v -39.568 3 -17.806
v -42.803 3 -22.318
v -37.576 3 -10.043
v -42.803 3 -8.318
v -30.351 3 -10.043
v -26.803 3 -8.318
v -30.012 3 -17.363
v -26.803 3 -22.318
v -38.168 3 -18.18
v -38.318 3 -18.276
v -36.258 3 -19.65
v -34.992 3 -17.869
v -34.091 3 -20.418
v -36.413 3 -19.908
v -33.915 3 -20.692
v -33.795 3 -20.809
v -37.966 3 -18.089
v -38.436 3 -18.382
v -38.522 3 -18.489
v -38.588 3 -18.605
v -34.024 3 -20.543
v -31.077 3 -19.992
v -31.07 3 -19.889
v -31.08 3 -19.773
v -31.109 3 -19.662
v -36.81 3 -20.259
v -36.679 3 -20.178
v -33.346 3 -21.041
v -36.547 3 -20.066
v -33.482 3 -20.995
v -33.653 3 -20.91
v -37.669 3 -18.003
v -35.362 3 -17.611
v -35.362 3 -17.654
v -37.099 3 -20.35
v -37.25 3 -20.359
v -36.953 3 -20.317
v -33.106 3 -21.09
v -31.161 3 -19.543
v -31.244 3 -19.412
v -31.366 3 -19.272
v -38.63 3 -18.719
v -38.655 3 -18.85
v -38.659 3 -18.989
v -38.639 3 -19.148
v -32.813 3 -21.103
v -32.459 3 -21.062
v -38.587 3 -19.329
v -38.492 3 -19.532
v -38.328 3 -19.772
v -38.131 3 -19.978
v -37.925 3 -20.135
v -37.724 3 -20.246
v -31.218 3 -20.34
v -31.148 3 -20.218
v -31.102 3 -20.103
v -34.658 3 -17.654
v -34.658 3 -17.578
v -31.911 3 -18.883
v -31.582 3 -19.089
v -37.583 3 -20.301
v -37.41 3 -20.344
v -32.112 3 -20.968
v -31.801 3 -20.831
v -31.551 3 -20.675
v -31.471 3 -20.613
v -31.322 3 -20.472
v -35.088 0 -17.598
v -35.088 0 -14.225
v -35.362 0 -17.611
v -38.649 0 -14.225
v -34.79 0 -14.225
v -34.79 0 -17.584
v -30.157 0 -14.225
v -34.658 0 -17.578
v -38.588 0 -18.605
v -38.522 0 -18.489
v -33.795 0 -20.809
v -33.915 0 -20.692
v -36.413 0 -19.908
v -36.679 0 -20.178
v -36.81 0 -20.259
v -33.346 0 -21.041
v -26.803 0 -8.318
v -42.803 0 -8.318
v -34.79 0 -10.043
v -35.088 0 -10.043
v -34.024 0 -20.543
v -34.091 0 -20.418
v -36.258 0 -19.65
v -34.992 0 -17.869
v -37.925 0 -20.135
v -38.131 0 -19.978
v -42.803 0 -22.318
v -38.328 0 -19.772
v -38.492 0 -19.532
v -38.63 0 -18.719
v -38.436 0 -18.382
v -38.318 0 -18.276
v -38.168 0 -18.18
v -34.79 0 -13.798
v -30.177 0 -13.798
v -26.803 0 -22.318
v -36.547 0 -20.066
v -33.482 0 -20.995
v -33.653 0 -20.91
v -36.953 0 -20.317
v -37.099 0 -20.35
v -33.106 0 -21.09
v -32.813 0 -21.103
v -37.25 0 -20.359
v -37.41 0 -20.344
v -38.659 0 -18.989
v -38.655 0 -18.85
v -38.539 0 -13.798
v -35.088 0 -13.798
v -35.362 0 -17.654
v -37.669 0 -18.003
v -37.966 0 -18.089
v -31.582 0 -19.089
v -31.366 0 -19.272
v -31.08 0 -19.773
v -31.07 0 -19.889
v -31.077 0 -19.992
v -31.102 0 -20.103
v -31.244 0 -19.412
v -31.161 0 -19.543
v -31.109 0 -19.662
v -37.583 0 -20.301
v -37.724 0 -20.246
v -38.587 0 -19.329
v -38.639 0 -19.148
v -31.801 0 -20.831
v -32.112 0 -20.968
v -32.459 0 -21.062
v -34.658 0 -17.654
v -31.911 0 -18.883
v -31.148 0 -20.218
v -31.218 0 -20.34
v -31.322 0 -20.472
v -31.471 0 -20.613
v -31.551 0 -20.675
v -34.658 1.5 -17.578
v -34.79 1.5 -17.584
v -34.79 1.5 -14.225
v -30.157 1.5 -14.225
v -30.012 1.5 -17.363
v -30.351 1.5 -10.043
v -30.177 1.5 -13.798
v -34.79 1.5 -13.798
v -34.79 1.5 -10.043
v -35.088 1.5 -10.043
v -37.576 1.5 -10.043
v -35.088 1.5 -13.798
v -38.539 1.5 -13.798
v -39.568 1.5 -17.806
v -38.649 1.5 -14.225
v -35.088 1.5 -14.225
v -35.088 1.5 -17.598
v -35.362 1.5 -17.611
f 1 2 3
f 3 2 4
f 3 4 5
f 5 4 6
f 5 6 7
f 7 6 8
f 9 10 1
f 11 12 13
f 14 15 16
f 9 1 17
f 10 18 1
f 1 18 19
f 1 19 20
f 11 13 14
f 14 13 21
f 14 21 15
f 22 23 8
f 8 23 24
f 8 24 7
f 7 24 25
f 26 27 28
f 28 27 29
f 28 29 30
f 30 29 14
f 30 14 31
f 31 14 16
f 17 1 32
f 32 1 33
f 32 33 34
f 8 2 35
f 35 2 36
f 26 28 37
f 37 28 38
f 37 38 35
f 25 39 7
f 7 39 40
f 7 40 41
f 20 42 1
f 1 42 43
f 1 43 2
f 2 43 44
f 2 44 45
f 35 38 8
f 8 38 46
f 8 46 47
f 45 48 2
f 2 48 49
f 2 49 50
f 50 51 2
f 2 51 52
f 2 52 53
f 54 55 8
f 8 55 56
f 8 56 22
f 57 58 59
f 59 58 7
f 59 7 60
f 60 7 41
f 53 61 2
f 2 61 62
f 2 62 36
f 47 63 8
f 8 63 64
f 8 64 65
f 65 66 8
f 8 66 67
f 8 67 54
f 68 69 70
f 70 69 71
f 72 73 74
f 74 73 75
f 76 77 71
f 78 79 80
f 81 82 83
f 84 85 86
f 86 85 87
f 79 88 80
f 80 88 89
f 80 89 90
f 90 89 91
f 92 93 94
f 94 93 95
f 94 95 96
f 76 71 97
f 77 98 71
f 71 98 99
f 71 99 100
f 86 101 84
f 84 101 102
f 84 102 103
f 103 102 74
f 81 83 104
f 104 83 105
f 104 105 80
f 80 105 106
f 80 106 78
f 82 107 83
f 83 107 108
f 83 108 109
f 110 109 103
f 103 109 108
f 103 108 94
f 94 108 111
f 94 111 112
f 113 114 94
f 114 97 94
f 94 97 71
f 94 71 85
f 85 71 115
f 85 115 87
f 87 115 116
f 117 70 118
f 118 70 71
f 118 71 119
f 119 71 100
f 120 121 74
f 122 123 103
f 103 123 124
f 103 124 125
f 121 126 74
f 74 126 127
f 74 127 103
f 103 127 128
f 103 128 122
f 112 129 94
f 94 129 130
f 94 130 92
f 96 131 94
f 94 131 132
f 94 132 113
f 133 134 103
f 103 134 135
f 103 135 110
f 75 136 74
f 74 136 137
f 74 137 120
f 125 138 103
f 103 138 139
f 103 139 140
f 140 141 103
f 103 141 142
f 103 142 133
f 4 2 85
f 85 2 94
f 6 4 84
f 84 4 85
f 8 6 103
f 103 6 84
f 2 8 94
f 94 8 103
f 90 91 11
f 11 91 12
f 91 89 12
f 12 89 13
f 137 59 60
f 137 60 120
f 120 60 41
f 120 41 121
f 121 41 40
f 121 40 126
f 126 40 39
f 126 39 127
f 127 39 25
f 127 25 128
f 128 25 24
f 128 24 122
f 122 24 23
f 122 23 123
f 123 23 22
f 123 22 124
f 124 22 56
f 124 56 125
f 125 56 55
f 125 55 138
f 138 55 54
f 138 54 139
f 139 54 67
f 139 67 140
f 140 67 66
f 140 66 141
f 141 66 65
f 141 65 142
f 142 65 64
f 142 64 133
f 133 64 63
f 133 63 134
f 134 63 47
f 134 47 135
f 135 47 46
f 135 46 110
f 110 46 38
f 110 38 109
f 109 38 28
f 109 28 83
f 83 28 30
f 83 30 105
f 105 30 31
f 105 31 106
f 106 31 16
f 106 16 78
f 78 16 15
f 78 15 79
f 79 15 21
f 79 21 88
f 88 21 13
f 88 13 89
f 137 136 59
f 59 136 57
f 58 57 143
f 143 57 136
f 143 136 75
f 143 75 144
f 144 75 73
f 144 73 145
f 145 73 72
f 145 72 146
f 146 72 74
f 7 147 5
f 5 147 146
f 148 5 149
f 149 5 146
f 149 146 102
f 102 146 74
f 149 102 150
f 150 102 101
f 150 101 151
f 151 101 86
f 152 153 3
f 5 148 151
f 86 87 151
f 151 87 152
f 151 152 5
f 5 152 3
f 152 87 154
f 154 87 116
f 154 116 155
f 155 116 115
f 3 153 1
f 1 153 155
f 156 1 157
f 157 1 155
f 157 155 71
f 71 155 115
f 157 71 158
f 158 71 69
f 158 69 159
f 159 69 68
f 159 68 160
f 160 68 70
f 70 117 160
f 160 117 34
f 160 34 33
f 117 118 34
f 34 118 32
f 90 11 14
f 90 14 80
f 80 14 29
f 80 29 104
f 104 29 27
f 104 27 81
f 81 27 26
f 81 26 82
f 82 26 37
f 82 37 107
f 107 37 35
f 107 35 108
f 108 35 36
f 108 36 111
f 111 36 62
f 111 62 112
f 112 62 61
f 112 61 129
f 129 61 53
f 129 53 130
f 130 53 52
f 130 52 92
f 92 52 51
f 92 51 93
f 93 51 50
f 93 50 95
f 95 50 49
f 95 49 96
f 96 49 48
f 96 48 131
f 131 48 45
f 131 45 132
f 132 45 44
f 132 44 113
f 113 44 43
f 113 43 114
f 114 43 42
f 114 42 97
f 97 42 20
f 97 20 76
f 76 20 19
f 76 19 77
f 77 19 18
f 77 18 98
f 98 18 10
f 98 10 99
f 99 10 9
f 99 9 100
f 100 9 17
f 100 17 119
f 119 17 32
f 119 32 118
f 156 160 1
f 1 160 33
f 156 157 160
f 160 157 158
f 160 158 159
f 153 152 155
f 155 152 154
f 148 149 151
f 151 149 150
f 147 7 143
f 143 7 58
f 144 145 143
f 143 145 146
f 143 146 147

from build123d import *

# Parameters (mm, degrees)
SKETCH1_W           = 16
SKETCH1_H           = 14
BOSS_EXTRUDE1_DEPTH = 3
CUT_EXTRUDE5_DEPTH  = 3
CUT_EXTRUDE6_DEPTH  = 1.5


with BuildPart() as part:
    # Sketch1 → Boss-Extrude1 (new body)
    with BuildSketch(Plane(origin=(0, 0, 0), x_dir=(1, 0, 0), z_dir=(0, 1, 0))):
        with Locations((-34.802547771, 15.318471338)):
            Rectangle(SKETCH1_W, SKETCH1_H)
    extrude(amount=BOSS_EXTRUDE1_DEPTH)

    # Sketch2 → Cut-Extrude5 (cut)
    with BuildSketch(Plane(origin=(0, 3, 0), x_dir=(1, 0, 0), z_dir=(0, 1, 0))):
        with BuildLine():
            Line((-35.361772538, 17.654157516), (-35.361772538, 17.610701513))
            Line((-35.361772538, 17.610701513), (-35.087707093, 17.598006383))
            Line((-35.087707093, 17.598006383), (-35.087707093, 14.224865562))
            Line((-35.087707093, 14.224865562), (-38.648703672, 14.224865562))
            Line((-38.648703672, 14.224865562), (-38.539082436, 13.797679772))
            Line((-38.539082436, 13.797679772), (-35.088327204, 13.797679772))
            Line((-35.088327204, 13.797679772), (-35.088327204, 10.043136726))
            Line((-35.088327204, 10.043136726), (-34.789528654, 10.043136726))
            Line((-34.789528654, 10.043136726), (-34.789528654, 13.797679772))
            Line((-34.789528654, 13.797679772), (-30.176657964, 13.797679772))
            Line((-30.176657964, 13.797679772), (-30.156870066, 14.224865562))
            Line((-30.156870066, 14.224865562), (-34.789528654, 14.224865562))
            Line((-34.789528654, 14.224865562), (-34.789528654, 17.584194303))
            Line((-34.789528654, 17.584194303), (-34.658050894, 17.578104053))
            Line((-34.658050894, 17.578104053), (-34.658050894, 17.654157516))
            Line((-34.658050894, 17.654157516), (-31.911401586, 18.883435151))
            add(Edge.make_bspline(
                [(-31.911401586, 18.883435151), (-29.374274196, 20.248494332), (-33.305897718, 22.135276734), (-34.090701751, 20.417941358)],
                knots=[0, 0, 0, 0, 1, 1, 1, 1], degree=3))
            Line((-34.090701751, 20.417941358), (-34.991899262, 17.868989737))
            Line((-34.991899262, 17.868989737), (-36.257619528, 19.650233345))
            add(Edge.make_bspline(
                [(-36.257619528, 19.650233345), (-37.304461787, 21.759932149), (-40.155684718, 18.540444353), (-37.66921168, 18.003375835)],
                knots=[0, 0, 0, 0, 1, 1, 1, 1], degree=3))
            Line((-37.66921168, 18.003375835), (-35.361772538, 17.654157516))
        make_face()
    extrude(amount=-CUT_EXTRUDE5_DEPTH, mode=Mode.SUBTRACT)

    # Sketch3 → Cut-Extrude6 (cut)
    with BuildSketch(Plane(origin=(0, 3, 0), x_dir=(1, 0, 0), z_dir=(0, 1, 0))):
        Polygon((-35.087707093, 17.598006383), (-39.567544365, 17.805519282), (-37.575619559, 10.043136726), (-30.350574127, 10.043136726), (-30.011512943, 17.362869325), align=None)
    extrude(amount=-CUT_EXTRUDE6_DEPTH, mode=Mode.SUBTRACT)


solid = part.part
